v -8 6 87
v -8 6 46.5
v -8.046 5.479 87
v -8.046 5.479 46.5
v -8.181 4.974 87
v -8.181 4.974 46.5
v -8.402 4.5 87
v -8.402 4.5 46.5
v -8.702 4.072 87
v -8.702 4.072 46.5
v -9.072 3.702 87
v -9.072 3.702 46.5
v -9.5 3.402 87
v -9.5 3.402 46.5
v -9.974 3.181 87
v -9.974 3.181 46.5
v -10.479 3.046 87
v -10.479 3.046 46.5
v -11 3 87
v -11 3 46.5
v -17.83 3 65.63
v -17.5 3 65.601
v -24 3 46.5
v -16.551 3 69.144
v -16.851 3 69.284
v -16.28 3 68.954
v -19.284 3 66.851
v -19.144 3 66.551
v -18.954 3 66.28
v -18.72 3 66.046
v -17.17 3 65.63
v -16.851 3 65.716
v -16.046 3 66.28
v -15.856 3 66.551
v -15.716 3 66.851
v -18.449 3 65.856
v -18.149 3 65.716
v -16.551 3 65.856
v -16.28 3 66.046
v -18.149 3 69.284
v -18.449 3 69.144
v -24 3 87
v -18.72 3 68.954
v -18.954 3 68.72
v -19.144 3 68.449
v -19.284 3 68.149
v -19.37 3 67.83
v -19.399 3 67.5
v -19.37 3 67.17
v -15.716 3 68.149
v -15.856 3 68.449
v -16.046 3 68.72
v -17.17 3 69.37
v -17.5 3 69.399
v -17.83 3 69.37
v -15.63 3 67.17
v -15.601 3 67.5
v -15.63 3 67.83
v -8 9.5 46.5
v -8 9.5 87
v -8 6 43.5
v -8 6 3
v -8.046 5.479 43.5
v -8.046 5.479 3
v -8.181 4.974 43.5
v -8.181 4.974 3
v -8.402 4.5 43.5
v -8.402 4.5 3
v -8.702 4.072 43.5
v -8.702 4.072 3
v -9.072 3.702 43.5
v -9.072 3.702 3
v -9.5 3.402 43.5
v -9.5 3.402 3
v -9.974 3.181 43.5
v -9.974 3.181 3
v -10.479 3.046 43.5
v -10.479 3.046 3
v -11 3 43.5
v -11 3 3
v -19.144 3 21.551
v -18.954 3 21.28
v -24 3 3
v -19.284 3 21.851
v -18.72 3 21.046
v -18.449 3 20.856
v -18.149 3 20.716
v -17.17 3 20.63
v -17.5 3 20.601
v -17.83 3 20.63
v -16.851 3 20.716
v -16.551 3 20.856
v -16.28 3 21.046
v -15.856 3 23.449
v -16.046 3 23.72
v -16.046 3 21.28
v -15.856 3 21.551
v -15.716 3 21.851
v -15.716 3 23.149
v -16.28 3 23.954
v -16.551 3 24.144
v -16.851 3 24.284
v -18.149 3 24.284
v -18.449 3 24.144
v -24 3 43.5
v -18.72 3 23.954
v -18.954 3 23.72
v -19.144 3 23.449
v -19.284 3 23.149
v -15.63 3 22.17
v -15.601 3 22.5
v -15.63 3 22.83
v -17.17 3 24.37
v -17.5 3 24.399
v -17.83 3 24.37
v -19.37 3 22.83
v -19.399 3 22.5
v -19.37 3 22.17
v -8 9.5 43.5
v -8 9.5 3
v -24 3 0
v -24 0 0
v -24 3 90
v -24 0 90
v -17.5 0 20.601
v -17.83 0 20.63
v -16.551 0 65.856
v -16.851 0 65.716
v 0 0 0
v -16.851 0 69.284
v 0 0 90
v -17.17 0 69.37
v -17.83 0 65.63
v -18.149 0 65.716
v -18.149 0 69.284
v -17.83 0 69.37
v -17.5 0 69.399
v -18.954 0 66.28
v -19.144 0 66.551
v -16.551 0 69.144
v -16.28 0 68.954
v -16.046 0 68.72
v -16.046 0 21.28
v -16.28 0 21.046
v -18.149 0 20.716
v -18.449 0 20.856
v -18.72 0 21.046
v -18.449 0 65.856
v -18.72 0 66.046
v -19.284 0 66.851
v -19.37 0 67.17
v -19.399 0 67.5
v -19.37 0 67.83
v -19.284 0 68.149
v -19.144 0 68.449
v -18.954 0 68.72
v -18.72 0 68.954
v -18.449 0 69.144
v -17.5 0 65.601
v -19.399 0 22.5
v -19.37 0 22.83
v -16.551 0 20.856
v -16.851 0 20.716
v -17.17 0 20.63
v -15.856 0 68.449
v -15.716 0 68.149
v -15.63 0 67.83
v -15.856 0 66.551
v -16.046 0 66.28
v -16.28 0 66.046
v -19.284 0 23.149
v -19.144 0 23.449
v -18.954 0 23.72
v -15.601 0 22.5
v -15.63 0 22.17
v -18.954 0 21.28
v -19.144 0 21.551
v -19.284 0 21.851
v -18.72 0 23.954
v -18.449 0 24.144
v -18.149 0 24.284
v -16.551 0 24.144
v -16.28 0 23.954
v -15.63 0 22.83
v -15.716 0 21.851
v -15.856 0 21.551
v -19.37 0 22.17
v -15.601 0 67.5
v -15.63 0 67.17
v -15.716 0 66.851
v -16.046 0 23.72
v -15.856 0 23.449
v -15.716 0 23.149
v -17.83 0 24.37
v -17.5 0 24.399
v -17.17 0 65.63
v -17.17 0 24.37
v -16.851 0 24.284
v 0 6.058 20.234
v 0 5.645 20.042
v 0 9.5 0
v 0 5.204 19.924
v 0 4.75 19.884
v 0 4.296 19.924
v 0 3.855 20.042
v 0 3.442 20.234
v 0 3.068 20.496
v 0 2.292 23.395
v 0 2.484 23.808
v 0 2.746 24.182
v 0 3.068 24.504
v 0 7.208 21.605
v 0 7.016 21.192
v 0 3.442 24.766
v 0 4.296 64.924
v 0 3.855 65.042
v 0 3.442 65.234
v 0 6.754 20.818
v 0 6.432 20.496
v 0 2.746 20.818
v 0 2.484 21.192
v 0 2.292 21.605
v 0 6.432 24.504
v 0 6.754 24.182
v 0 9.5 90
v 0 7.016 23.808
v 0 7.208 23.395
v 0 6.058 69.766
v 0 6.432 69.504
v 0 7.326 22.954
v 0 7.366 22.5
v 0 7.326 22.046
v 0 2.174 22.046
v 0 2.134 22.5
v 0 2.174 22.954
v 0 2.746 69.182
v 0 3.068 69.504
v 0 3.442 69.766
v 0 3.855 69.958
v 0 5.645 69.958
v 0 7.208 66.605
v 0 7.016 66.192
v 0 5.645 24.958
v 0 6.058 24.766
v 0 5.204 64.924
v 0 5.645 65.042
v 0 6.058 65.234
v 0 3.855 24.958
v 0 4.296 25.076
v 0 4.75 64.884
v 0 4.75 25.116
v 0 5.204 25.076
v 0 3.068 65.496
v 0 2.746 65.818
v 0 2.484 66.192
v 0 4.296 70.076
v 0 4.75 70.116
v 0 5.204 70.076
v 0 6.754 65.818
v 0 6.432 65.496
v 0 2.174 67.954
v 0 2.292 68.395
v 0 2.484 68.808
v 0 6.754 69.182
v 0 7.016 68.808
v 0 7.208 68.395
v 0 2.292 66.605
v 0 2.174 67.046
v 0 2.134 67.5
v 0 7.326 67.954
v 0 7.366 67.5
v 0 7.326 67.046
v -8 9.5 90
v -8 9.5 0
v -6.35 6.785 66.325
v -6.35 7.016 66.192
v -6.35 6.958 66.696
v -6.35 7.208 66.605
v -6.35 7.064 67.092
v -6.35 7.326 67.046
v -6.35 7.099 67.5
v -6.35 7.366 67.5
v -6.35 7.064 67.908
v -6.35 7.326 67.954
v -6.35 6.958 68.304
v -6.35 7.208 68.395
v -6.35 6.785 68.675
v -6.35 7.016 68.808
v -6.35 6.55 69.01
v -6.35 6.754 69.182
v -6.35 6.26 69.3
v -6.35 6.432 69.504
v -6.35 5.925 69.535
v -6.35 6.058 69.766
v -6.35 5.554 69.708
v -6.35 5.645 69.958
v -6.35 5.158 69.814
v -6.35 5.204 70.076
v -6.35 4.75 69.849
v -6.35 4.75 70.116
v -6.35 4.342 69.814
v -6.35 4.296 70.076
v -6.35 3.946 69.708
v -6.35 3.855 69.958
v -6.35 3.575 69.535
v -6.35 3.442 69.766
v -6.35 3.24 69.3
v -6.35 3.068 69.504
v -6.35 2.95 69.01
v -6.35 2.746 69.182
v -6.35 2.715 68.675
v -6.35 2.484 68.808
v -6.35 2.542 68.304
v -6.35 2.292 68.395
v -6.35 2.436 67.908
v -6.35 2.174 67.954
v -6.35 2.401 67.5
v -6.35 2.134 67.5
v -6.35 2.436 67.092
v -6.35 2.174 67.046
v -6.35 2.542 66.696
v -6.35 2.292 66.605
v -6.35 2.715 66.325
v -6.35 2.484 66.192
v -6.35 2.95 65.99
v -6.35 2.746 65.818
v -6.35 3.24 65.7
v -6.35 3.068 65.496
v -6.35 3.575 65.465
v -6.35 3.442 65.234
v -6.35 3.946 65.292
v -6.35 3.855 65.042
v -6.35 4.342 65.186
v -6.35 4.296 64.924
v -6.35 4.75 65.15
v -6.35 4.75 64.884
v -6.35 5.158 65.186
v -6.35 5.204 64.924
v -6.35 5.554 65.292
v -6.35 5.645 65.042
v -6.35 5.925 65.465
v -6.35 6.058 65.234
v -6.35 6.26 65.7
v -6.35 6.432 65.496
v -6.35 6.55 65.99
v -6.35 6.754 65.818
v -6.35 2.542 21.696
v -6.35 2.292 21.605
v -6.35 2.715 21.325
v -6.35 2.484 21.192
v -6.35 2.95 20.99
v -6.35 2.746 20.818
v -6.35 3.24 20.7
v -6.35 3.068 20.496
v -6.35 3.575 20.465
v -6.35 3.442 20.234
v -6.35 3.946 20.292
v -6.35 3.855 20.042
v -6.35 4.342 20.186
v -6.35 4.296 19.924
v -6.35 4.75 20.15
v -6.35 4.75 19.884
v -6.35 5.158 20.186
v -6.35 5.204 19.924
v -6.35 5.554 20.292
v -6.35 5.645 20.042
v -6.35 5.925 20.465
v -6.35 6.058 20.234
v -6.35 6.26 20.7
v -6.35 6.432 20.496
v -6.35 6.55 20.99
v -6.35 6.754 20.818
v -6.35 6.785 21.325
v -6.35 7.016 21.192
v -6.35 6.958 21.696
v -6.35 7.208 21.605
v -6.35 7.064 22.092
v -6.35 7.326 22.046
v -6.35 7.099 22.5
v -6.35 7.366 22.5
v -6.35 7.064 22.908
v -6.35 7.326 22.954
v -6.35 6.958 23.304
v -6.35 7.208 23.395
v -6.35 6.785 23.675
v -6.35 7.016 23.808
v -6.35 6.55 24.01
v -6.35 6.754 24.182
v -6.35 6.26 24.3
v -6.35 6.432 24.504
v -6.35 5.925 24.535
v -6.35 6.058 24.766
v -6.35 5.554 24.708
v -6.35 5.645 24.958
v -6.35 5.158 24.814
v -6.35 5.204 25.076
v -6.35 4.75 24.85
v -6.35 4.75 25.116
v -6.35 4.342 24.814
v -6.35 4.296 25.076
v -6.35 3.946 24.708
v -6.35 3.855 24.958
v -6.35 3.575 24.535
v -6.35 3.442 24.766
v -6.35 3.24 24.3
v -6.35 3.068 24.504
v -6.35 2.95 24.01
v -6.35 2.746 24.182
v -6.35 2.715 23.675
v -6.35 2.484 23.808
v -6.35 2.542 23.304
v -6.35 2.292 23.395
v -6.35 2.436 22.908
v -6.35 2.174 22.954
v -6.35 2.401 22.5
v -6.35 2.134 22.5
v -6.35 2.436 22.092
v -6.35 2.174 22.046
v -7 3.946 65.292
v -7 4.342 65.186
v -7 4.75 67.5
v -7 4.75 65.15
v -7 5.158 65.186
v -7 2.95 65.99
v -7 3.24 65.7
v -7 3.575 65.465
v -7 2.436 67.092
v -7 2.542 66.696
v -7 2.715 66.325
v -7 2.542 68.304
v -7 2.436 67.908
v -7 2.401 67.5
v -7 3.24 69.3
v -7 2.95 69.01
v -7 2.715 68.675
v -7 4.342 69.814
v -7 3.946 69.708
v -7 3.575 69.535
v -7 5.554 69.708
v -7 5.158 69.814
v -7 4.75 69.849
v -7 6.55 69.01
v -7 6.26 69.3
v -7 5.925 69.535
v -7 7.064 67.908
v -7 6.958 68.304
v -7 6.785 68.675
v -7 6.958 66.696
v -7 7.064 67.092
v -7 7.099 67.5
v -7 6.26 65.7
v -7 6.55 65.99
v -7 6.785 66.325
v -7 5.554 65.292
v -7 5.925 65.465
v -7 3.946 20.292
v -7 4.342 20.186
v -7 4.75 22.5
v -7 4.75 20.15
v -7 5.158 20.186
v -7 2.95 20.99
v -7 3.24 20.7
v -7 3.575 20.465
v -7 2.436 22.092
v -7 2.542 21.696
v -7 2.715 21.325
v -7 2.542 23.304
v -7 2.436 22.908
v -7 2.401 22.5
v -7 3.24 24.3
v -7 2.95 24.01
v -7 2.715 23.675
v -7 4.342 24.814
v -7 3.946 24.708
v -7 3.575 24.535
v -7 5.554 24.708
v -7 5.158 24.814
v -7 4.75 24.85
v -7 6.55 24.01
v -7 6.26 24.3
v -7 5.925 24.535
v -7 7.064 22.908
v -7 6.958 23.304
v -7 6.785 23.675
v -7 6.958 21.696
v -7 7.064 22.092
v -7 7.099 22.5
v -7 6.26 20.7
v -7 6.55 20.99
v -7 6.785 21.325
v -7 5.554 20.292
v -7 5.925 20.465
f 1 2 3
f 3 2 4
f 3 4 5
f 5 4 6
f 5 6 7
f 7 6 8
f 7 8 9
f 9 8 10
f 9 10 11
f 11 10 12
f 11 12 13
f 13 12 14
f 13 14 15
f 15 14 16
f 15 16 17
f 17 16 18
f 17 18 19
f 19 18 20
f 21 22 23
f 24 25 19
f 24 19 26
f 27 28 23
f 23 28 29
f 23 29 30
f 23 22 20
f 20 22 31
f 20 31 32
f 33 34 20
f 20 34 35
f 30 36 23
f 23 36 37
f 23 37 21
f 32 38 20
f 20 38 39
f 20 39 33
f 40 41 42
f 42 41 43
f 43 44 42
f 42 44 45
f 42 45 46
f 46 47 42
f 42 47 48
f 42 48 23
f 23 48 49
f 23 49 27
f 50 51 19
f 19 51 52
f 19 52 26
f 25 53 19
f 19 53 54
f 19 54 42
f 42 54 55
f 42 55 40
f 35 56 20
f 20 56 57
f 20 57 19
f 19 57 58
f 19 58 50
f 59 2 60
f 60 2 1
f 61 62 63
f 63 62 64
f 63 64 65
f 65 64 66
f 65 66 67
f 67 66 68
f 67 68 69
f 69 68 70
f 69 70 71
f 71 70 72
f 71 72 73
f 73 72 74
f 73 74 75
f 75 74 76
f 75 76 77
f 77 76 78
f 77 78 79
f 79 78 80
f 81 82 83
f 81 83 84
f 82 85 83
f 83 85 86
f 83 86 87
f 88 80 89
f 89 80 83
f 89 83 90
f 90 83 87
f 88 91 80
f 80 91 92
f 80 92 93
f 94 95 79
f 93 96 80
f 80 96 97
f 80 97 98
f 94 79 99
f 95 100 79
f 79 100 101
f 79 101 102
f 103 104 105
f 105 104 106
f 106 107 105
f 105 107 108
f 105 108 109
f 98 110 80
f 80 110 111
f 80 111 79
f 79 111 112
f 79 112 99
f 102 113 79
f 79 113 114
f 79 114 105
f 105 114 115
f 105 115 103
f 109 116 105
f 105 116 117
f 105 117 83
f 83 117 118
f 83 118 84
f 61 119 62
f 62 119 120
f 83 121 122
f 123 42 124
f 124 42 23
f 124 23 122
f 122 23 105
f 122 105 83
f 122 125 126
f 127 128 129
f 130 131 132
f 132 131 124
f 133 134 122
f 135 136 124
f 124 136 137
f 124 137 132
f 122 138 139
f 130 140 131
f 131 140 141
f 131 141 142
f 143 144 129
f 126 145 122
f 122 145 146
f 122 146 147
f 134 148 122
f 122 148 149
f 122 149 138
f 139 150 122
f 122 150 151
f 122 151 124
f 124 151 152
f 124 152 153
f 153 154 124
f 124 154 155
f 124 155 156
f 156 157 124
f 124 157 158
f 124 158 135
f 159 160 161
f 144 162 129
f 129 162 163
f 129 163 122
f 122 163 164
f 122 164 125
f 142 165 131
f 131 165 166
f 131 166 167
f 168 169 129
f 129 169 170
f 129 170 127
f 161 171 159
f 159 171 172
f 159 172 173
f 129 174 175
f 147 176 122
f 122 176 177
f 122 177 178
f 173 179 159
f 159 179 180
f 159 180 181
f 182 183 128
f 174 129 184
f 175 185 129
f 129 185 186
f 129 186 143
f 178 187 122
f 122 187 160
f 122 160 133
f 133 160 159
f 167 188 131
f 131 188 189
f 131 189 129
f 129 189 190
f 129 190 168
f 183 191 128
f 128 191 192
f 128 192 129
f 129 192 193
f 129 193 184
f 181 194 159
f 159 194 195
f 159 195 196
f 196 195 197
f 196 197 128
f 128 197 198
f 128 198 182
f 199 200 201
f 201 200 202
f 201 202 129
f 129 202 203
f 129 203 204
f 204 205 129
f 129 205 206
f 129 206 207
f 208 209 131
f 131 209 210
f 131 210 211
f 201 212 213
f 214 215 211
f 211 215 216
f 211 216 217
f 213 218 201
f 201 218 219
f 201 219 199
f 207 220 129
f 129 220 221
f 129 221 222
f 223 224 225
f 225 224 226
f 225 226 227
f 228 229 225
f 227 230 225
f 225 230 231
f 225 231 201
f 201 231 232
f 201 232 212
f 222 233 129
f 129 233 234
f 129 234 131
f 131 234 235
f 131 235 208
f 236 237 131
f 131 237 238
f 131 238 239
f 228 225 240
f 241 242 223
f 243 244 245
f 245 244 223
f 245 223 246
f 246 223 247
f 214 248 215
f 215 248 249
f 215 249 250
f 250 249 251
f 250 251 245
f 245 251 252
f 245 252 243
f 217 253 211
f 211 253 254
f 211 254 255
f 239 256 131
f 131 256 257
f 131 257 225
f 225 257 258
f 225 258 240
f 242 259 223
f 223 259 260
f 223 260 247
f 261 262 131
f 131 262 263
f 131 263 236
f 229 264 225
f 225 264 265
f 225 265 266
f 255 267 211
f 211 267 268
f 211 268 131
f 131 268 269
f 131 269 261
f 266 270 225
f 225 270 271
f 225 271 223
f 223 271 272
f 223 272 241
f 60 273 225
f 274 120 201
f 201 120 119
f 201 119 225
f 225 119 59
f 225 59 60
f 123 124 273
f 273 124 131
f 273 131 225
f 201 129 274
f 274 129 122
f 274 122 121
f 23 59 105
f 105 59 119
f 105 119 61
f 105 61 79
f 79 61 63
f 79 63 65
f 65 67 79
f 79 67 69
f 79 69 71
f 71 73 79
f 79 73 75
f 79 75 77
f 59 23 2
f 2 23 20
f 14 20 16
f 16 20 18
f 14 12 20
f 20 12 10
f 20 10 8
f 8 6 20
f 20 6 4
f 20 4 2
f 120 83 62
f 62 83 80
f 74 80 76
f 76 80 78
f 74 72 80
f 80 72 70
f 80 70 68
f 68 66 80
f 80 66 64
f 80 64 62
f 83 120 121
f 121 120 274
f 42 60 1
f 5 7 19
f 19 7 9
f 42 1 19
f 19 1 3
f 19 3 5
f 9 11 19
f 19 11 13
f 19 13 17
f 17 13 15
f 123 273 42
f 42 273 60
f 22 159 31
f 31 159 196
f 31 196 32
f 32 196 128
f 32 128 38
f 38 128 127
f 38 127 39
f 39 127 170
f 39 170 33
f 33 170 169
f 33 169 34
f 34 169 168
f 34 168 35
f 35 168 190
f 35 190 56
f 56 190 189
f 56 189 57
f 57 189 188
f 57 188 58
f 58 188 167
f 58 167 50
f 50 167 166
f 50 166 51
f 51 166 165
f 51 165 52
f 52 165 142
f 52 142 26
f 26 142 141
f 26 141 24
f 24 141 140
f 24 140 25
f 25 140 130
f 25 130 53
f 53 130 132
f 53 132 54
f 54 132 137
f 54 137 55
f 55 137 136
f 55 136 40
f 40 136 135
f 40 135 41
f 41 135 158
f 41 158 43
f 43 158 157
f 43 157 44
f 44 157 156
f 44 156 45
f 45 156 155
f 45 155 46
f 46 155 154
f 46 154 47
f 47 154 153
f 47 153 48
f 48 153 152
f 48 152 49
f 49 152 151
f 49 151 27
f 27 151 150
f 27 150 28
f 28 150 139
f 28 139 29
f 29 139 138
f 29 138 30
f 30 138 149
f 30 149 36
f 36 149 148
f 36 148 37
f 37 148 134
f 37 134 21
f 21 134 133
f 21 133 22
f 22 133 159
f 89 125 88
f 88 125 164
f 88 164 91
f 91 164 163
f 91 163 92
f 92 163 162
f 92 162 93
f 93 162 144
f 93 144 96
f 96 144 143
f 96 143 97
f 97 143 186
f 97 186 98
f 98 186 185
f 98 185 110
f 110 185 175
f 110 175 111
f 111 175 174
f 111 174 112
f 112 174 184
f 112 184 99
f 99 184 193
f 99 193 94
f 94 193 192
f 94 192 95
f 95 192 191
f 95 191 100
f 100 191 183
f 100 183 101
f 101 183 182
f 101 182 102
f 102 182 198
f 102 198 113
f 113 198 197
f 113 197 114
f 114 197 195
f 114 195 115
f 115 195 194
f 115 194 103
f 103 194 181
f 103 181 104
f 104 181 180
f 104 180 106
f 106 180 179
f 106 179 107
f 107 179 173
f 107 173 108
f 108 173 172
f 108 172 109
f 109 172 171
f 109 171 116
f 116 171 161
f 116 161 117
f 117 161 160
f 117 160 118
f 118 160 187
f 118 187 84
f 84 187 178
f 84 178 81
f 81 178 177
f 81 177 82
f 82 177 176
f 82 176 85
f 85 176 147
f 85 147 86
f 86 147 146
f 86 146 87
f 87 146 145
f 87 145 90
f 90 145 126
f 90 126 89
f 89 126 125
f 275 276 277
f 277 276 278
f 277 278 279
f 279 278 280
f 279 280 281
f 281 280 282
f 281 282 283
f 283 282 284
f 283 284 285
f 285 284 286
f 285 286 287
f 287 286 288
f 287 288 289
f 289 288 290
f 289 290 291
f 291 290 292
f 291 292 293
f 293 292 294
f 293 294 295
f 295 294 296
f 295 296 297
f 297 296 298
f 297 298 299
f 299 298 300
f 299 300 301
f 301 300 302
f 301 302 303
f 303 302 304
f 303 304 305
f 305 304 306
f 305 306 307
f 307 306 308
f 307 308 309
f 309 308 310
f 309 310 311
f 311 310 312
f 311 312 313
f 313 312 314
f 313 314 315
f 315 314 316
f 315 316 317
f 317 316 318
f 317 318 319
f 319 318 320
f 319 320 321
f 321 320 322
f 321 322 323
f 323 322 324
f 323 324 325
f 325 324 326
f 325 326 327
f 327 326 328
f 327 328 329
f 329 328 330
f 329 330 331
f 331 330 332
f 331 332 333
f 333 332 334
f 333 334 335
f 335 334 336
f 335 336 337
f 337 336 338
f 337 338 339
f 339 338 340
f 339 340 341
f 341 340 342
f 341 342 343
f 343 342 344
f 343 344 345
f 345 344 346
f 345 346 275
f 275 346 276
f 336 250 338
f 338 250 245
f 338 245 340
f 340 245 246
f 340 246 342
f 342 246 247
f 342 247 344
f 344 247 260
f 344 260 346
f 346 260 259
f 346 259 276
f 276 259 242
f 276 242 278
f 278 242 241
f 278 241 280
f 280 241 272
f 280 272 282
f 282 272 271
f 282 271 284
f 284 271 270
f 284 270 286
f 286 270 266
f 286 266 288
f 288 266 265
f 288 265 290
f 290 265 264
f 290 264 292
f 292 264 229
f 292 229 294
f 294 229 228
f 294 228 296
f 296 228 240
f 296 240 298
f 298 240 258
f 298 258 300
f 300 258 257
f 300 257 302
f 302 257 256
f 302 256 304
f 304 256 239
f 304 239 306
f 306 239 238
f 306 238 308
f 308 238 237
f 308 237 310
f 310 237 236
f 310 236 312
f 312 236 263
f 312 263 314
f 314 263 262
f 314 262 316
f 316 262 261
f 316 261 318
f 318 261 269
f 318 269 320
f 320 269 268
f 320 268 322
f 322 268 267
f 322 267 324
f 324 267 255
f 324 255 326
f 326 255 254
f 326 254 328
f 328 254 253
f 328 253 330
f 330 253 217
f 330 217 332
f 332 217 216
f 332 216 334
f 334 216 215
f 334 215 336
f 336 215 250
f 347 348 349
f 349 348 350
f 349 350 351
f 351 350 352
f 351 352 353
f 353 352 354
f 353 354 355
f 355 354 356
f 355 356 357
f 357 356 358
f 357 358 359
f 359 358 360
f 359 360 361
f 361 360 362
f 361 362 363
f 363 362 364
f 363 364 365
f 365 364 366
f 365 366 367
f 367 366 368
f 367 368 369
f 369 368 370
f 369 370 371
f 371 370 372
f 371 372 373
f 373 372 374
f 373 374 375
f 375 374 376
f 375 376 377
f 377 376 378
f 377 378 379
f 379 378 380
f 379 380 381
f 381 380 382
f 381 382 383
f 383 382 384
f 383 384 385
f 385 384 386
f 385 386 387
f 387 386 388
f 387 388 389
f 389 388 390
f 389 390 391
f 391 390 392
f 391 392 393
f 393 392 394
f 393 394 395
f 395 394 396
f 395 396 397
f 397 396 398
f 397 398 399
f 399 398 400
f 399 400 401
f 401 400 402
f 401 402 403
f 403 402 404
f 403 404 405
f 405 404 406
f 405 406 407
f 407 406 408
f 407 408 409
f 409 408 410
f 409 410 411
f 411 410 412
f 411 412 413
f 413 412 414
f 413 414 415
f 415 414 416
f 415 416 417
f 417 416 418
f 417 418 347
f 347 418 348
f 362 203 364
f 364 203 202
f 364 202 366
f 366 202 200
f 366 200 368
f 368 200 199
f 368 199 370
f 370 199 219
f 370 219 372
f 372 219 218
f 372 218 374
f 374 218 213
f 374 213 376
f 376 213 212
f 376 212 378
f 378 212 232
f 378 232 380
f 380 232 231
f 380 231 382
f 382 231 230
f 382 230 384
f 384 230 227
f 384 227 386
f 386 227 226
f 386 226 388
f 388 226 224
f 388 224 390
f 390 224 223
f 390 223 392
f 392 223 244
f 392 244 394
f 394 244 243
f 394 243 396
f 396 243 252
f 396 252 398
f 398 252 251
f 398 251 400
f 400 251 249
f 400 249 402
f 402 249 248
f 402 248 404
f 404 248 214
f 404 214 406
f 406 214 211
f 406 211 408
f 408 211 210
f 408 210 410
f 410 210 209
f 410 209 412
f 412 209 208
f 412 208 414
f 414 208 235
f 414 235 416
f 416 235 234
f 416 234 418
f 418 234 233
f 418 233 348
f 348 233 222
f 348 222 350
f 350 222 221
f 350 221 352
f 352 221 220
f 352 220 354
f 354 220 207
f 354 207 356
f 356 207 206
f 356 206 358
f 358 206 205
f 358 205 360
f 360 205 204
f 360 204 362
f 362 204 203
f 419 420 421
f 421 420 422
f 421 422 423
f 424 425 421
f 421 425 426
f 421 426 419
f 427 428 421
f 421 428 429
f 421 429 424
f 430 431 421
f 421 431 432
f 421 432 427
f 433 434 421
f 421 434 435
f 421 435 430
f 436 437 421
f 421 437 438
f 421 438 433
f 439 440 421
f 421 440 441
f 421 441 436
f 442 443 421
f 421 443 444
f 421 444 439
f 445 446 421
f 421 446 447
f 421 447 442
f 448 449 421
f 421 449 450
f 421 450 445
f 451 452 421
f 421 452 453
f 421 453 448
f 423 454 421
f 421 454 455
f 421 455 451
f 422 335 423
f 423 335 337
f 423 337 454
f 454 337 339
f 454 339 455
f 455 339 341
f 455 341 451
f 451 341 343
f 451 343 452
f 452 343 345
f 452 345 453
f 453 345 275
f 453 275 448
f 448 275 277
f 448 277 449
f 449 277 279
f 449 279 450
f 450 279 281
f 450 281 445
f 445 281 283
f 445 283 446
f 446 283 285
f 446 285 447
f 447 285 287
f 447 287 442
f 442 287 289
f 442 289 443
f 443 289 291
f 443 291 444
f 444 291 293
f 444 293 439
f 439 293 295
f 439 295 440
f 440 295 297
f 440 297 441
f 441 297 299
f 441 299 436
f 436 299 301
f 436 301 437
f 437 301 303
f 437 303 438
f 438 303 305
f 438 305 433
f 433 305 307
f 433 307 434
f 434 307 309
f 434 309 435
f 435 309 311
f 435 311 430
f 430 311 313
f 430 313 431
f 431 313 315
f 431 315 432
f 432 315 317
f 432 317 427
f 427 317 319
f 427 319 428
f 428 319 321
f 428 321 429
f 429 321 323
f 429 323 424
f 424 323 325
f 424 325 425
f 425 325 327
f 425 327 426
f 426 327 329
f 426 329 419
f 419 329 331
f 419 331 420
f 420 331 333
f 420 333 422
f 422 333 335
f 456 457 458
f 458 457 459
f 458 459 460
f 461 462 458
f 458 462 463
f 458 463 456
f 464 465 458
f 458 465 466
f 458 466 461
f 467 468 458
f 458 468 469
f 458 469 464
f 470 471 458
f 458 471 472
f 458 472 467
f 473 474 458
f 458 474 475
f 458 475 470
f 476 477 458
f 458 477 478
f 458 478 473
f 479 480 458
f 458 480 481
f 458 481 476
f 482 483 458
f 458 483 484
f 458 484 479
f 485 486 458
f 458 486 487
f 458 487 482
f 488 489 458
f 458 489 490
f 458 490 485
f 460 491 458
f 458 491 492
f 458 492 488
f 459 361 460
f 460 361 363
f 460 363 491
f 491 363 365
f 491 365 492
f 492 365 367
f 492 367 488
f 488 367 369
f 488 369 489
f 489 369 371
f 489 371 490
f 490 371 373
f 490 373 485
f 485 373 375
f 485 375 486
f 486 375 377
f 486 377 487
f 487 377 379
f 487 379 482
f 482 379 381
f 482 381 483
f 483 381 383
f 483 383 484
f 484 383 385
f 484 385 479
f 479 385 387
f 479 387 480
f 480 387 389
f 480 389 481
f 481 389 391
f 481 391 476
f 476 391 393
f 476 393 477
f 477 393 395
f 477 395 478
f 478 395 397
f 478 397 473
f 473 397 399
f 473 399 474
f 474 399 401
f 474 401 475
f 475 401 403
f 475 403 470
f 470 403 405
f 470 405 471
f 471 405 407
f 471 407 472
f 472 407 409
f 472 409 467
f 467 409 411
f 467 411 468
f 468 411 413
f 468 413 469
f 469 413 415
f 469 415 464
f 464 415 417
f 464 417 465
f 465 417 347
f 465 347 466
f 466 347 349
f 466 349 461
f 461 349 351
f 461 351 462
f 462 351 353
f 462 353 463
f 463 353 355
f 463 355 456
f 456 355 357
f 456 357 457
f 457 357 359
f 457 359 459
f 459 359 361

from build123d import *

# Parameters (mm, degrees)
BOSS_EXTRUDE1_DEPTH   = 90
RIB3_REACH            = 53.877
SKETCH4_WALL_W        = 123.024434014
SKETCH4_WALL_H        = 3
RIB4_START            = -3
RIB4_DEPTH            = 3
F_6_CLEARANCE_HOLE1_D = 3.7973
SKETCH6_R             = 2.3495
CUT_EXTRUDE1_DEPTH    = 7
SKETCH12_R            = 2.6162
CUT_EXTRUDE2_DEPTH    = 6.35


# Read off the part's stored shape, not the designer's step: Rib4
with BuildPart() as part:
    # Sketch1 → Boss-Extrude1 (new body)
    with BuildSketch(Plane.XY):
        with BuildLine():
            Line((0, 0), (0, 9.5))
            Line((0, 9.5), (-8, 9.5))
            Line((-8, 9.5), (-8, 6))
            ThreePointArc((-8, 6), (-8.878679656, 3.878679656), (-11, 3))
            Line((-11, 3), (-24, 3))
            Line((-24, 3), (-24, 0))
            Line((-24, 0), (0, 0))
        make_face()
    extrude(amount=BOSS_EXTRUDE1_DEPTH)

    # Sketch4 wall → Rib3 (add, up to next)
    with BuildSketch(Plane(origin=(-16, 6.25, 45), x_dir=(-0.926466577122, -0.376377046956, 0), z_dir=(-0.376377046956, 0.926466577122, 0)), mode=Mode.PRIVATE) as rib3_sk1:
        Rectangle(SKETCH4_WALL_W, SKETCH4_WALL_H)
    rib3_tool1 = extrude(rib3_sk1.sketch, amount=-RIB3_REACH, mode=Mode.PRIVATE) - part.part
    add(rib3_tool1.solids().sort_by_distance((-16, 6.25, 45))[0])

    # Rib4 outline → Rib4 (add)
    with BuildSketch(Plane(origin=(0, 0, 0), x_dir=(-1, 0, 0), z_dir=(0, 0, -1)).offset(RIB4_START)):
        with BuildLine():
            Line((24, 3), (8, 9.5))
            Line((8, 9.5), (8, 6))
            ThreePointArc((8, 6), (8.878679656, 3.878679656), (11, 3))
            Line((11, 3), (24, 3))
        make_face()
    rib4 = extrude(amount=RIB4_DEPTH)

    # Mirror1: Rib4 across plane
    add(rib4.mirror(Plane(origin=(0, 0, 45), x_dir=(1, 0, 0), z_dir=(0, 0, -1))))

    # #6 Clearance Hole1 (through all)
    with Locations(Plane(origin=(0, 0, 0), x_dir=(-1, 0, 0), z_dir=(0, -1, 0))):
        with Locations((17.5, -22.5), (17.5, -67.5)):
            Hole(F_6_CLEARANCE_HOLE1_D / 2)

    # Sketch6 → Cut-Extrude1 (cut)
    with BuildSketch(Plane(origin=(0, 0, 0), x_dir=(0, 0, -1), z_dir=(1, 0, 0))):
        with Locations((-67.5, 4.75)):
            Circle(SKETCH6_R)
        with Locations((-22.5, 4.75)):
            Circle(SKETCH6_R)
    extrude(amount=-CUT_EXTRUDE1_DEPTH, mode=Mode.SUBTRACT)

    # Sketch12 → Cut-Extrude2 (cut)
    with BuildSketch(Plane(origin=(0, 0, 0), x_dir=(0, 0, -1), z_dir=(1, 0, 0))):
        with Locations((-67.5, 4.75)):
            Circle(SKETCH12_R)
        with Locations((-22.5, 4.75)):
            Circle(SKETCH12_R)
    extrude(amount=-CUT_EXTRUDE2_DEPTH, mode=Mode.SUBTRACT)


solid = part.part
